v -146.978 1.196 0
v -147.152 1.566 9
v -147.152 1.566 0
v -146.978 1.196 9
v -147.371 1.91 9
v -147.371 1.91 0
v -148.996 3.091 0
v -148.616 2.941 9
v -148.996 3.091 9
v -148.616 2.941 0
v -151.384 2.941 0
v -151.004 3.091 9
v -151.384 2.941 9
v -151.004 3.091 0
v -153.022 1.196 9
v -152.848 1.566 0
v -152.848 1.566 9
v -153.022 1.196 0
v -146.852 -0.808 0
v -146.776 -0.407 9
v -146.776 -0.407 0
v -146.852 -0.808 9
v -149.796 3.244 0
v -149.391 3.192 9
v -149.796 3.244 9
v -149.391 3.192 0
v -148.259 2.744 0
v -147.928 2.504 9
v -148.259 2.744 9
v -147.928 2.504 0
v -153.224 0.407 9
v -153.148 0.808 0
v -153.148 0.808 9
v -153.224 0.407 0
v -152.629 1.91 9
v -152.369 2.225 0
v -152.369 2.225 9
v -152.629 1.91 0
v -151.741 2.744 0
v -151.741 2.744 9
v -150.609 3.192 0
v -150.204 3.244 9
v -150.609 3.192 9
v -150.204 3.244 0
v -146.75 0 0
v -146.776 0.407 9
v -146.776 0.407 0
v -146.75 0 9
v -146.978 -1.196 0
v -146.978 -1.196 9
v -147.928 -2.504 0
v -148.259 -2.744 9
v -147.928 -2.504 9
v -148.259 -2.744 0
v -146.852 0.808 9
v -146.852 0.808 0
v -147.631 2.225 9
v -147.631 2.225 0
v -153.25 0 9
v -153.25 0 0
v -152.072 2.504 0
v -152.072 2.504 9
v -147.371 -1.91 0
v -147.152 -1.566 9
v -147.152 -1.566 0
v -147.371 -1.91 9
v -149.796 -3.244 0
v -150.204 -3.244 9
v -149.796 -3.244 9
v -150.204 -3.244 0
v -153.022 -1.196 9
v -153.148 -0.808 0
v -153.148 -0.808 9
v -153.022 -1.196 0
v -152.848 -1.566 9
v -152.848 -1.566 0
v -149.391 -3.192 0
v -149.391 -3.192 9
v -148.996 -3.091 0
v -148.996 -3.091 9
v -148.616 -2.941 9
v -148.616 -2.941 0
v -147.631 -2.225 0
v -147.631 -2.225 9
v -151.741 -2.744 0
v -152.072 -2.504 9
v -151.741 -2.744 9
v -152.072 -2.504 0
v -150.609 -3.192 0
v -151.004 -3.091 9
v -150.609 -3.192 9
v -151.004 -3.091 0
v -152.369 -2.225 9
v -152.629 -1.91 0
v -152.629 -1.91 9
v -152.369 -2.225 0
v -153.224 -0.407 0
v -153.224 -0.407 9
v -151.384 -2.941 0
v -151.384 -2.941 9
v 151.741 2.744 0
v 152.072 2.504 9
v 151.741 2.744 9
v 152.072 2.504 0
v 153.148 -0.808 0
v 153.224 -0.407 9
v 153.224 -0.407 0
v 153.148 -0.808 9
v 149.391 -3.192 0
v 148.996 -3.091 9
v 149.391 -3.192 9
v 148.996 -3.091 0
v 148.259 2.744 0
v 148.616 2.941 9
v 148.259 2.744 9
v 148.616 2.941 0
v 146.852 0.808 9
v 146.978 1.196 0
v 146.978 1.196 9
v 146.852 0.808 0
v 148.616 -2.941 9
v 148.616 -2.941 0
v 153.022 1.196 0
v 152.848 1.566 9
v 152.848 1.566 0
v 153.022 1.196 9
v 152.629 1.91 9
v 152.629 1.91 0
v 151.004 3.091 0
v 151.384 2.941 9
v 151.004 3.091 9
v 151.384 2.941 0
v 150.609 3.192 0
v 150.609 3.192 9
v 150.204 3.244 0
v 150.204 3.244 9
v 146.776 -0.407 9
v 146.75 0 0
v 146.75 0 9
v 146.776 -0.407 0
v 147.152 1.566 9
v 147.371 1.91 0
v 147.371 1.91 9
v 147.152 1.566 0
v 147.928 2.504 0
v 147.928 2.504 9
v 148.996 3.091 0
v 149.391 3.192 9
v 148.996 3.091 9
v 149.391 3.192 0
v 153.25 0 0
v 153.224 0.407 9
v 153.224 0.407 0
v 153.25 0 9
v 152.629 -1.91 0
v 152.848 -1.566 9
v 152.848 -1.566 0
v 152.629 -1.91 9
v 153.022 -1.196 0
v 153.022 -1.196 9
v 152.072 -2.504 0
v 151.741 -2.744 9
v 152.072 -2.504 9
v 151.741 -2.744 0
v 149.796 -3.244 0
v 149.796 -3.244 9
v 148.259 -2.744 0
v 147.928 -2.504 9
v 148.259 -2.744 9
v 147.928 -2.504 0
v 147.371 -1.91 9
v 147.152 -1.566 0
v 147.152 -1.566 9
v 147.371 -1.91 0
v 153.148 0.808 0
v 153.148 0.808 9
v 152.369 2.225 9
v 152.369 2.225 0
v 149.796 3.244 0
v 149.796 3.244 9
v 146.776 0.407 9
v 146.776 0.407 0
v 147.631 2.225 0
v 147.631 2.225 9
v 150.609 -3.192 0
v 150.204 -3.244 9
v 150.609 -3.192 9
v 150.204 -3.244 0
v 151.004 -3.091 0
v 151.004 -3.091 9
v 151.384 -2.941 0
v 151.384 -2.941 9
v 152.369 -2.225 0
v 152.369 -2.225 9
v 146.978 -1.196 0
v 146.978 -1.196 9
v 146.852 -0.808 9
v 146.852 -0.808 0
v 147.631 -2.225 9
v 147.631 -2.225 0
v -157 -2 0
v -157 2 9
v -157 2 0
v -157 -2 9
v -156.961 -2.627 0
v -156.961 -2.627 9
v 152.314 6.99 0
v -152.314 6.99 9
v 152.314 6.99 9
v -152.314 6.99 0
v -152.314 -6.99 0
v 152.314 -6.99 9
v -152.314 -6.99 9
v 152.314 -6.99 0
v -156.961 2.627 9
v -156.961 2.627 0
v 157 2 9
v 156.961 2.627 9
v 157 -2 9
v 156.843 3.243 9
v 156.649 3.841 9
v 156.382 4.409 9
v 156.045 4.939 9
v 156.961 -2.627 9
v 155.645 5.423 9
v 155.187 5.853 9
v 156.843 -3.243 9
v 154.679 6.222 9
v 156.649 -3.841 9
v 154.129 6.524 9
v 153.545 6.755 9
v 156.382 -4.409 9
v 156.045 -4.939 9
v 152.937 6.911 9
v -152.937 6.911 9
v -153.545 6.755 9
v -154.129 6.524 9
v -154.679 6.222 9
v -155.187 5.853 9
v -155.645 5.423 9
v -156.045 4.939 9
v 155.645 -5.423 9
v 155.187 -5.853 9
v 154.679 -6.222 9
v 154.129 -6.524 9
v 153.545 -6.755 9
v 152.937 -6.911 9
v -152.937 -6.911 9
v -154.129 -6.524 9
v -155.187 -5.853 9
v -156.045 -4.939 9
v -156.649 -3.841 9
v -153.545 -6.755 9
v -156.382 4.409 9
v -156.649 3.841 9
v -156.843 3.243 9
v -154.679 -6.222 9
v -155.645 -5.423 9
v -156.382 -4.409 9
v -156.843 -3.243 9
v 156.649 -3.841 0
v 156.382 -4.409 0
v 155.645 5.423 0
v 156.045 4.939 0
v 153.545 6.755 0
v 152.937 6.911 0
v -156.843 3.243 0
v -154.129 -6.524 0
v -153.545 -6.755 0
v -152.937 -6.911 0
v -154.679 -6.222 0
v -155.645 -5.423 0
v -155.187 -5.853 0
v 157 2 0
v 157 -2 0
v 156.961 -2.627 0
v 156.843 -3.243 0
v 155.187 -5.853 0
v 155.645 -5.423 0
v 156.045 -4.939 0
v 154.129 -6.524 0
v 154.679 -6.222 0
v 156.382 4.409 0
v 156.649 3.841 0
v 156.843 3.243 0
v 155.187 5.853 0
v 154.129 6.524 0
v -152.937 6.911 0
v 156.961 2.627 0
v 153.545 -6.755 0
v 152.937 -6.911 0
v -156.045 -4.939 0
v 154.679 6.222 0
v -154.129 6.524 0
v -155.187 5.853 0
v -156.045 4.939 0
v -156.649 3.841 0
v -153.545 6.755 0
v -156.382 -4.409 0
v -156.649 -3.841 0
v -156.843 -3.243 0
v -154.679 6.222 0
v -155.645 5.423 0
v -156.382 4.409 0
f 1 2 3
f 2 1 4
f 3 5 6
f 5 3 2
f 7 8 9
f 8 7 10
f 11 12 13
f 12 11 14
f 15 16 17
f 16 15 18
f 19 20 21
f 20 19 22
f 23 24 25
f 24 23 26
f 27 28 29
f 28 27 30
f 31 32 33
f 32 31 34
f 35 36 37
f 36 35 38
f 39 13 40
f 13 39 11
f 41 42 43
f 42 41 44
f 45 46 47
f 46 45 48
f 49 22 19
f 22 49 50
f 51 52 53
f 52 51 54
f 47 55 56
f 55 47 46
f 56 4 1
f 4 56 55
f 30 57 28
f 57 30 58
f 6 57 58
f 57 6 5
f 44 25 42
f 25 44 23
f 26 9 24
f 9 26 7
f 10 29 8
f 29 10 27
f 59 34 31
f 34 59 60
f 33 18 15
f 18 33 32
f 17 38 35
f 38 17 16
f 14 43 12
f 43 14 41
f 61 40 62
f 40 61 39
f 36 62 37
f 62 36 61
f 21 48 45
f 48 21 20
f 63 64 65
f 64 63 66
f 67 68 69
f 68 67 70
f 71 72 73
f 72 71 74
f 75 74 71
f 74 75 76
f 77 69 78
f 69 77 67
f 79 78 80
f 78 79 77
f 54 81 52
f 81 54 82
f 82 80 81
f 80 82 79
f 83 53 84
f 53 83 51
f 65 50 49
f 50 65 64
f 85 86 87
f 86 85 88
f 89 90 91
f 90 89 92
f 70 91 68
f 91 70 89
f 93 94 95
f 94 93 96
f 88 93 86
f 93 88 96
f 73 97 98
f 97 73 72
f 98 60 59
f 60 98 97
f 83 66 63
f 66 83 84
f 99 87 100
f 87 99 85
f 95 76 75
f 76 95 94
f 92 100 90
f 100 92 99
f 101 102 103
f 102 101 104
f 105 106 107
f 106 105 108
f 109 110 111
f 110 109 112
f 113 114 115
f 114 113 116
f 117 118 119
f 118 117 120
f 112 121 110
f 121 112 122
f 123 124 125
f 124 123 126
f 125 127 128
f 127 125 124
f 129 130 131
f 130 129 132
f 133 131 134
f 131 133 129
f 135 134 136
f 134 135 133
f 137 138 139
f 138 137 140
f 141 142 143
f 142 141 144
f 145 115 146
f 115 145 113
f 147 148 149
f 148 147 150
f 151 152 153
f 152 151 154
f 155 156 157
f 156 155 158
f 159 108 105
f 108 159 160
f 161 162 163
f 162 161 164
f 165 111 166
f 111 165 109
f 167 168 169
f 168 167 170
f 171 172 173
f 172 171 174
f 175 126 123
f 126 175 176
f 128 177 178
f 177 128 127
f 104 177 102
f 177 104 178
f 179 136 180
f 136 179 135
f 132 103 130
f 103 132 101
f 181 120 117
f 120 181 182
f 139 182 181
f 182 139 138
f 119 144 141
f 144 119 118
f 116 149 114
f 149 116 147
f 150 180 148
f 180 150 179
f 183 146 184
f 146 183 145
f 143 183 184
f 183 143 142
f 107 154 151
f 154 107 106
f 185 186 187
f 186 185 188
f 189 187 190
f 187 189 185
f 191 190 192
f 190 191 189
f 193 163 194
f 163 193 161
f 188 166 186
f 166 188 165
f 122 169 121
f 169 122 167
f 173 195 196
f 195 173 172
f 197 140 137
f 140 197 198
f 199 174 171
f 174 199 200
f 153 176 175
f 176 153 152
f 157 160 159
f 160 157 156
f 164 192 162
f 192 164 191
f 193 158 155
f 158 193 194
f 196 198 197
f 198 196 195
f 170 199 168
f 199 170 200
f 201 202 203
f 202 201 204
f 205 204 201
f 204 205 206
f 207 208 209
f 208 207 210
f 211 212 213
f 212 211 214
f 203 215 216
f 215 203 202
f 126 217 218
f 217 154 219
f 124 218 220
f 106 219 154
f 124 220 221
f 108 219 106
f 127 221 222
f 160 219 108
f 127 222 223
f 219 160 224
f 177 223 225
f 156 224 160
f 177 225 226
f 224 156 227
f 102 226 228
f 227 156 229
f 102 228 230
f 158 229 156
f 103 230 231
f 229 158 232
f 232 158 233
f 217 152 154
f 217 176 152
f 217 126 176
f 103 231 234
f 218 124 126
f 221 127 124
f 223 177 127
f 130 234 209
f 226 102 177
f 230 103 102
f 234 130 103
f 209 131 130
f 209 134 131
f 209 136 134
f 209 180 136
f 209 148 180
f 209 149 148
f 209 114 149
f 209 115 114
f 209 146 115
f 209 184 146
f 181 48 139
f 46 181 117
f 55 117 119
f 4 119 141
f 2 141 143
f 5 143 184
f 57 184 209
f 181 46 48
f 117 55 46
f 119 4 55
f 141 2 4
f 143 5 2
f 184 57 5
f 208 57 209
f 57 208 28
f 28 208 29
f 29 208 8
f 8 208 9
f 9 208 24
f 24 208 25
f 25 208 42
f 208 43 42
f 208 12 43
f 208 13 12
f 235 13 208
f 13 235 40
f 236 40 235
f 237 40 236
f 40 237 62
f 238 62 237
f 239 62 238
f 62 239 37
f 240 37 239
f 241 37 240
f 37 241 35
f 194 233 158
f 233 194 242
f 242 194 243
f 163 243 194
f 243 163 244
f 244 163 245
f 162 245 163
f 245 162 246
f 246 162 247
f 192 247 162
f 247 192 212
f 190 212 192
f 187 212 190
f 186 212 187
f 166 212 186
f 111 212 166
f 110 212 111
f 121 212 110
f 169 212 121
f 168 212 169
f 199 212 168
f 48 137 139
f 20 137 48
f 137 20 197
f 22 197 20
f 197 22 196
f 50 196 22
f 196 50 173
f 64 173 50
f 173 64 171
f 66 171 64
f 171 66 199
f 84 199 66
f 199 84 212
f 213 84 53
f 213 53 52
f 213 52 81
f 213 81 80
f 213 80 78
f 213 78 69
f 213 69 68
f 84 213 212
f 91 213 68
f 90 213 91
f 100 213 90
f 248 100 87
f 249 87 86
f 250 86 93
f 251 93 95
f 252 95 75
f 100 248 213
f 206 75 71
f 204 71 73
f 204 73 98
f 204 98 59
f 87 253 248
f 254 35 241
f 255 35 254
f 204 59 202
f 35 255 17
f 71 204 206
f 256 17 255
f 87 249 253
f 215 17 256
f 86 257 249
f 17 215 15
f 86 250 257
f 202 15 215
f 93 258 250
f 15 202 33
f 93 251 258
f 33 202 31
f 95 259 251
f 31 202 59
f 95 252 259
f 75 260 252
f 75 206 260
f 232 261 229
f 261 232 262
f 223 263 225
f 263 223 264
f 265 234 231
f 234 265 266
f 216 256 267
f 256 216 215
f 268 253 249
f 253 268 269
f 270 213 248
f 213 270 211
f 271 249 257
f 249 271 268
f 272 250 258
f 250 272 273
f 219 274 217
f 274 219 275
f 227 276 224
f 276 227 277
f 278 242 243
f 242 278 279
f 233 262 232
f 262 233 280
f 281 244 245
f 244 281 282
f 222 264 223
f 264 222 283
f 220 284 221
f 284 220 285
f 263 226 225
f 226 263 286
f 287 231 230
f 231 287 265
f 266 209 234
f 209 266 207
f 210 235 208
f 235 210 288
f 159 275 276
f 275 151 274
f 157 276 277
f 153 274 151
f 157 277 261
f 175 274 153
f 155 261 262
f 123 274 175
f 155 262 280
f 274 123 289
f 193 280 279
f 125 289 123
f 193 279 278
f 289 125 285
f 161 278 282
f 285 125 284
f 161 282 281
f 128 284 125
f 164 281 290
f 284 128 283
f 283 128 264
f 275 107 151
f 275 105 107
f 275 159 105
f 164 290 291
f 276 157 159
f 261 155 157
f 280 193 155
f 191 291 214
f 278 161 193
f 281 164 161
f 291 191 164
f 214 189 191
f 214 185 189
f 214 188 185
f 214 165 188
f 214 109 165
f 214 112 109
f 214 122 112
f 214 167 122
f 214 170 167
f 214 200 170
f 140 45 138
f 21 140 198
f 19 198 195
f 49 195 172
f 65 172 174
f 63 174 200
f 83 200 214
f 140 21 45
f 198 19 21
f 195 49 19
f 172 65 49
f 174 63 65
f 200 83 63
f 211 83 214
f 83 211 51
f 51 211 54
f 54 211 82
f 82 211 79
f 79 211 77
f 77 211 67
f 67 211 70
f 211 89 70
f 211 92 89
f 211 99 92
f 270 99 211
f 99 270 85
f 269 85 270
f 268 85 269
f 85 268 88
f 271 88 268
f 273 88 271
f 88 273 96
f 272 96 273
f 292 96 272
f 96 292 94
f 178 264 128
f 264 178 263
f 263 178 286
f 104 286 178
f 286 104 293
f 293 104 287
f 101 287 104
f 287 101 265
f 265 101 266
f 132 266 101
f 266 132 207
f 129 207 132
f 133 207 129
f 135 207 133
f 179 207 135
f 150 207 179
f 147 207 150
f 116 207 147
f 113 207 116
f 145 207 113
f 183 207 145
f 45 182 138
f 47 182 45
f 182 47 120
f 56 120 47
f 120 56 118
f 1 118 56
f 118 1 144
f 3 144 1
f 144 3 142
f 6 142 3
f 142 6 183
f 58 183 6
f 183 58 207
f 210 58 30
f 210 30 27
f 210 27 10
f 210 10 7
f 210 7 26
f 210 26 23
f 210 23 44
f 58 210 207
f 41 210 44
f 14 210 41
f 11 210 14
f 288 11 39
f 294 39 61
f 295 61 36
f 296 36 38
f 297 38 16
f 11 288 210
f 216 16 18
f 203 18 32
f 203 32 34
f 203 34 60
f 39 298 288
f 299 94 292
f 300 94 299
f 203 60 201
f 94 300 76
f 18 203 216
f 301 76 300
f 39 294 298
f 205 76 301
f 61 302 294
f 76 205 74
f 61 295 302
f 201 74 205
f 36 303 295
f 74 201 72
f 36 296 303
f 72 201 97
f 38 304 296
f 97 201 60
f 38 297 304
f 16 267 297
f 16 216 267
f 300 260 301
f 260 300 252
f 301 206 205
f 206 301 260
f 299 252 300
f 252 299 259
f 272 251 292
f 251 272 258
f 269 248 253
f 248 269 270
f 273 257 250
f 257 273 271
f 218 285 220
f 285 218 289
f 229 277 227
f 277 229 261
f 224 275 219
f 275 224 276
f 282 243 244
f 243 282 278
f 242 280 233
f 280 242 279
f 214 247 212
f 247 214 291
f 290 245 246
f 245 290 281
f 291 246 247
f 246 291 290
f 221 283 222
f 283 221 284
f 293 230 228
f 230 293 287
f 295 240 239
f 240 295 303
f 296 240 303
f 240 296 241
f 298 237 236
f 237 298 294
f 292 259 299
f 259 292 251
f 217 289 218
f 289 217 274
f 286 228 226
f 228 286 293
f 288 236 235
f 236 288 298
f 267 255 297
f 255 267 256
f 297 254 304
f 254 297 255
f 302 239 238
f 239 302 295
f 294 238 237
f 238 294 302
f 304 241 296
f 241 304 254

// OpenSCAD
$fn = 50;


difference() {
	union() {
		hull() {
			translate(v = [-152.0000000000, 2.0000000000, 0]) {
				cylinder(h = 9, r = 5);
			}
			translate(v = [152.0000000000, 2.0000000000, 0]) {
				cylinder(h = 9, r = 5);
			}
			translate(v = [-152.0000000000, -2.0000000000, 0]) {
				cylinder(h = 9, r = 5);
			}
			translate(v = [152.0000000000, -2.0000000000, 0]) {
				cylinder(h = 9, r = 5);
			}
		}
	}
	union() {
		translate(v = [-150.0000000000, 0.0000000000, -100.0000000000]) {
			cylinder(h = 200, r = 3.2500000000);
		}
		translate(v = [-150.0000000000, 0.0000000000, -100.0000000000]) {
			cylinder(h = 200, r = 3.2500000000);
		}
		translate(v = [150.0000000000, 0.0000000000, -100.0000000000]) {
			cylinder(h = 200, r = 3.2500000000);
		}
		translate(v = [150.0000000000, 0.0000000000, -100.0000000000]) {
			cylinder(h = 200, r = 3.2500000000);
		}
	}
}
